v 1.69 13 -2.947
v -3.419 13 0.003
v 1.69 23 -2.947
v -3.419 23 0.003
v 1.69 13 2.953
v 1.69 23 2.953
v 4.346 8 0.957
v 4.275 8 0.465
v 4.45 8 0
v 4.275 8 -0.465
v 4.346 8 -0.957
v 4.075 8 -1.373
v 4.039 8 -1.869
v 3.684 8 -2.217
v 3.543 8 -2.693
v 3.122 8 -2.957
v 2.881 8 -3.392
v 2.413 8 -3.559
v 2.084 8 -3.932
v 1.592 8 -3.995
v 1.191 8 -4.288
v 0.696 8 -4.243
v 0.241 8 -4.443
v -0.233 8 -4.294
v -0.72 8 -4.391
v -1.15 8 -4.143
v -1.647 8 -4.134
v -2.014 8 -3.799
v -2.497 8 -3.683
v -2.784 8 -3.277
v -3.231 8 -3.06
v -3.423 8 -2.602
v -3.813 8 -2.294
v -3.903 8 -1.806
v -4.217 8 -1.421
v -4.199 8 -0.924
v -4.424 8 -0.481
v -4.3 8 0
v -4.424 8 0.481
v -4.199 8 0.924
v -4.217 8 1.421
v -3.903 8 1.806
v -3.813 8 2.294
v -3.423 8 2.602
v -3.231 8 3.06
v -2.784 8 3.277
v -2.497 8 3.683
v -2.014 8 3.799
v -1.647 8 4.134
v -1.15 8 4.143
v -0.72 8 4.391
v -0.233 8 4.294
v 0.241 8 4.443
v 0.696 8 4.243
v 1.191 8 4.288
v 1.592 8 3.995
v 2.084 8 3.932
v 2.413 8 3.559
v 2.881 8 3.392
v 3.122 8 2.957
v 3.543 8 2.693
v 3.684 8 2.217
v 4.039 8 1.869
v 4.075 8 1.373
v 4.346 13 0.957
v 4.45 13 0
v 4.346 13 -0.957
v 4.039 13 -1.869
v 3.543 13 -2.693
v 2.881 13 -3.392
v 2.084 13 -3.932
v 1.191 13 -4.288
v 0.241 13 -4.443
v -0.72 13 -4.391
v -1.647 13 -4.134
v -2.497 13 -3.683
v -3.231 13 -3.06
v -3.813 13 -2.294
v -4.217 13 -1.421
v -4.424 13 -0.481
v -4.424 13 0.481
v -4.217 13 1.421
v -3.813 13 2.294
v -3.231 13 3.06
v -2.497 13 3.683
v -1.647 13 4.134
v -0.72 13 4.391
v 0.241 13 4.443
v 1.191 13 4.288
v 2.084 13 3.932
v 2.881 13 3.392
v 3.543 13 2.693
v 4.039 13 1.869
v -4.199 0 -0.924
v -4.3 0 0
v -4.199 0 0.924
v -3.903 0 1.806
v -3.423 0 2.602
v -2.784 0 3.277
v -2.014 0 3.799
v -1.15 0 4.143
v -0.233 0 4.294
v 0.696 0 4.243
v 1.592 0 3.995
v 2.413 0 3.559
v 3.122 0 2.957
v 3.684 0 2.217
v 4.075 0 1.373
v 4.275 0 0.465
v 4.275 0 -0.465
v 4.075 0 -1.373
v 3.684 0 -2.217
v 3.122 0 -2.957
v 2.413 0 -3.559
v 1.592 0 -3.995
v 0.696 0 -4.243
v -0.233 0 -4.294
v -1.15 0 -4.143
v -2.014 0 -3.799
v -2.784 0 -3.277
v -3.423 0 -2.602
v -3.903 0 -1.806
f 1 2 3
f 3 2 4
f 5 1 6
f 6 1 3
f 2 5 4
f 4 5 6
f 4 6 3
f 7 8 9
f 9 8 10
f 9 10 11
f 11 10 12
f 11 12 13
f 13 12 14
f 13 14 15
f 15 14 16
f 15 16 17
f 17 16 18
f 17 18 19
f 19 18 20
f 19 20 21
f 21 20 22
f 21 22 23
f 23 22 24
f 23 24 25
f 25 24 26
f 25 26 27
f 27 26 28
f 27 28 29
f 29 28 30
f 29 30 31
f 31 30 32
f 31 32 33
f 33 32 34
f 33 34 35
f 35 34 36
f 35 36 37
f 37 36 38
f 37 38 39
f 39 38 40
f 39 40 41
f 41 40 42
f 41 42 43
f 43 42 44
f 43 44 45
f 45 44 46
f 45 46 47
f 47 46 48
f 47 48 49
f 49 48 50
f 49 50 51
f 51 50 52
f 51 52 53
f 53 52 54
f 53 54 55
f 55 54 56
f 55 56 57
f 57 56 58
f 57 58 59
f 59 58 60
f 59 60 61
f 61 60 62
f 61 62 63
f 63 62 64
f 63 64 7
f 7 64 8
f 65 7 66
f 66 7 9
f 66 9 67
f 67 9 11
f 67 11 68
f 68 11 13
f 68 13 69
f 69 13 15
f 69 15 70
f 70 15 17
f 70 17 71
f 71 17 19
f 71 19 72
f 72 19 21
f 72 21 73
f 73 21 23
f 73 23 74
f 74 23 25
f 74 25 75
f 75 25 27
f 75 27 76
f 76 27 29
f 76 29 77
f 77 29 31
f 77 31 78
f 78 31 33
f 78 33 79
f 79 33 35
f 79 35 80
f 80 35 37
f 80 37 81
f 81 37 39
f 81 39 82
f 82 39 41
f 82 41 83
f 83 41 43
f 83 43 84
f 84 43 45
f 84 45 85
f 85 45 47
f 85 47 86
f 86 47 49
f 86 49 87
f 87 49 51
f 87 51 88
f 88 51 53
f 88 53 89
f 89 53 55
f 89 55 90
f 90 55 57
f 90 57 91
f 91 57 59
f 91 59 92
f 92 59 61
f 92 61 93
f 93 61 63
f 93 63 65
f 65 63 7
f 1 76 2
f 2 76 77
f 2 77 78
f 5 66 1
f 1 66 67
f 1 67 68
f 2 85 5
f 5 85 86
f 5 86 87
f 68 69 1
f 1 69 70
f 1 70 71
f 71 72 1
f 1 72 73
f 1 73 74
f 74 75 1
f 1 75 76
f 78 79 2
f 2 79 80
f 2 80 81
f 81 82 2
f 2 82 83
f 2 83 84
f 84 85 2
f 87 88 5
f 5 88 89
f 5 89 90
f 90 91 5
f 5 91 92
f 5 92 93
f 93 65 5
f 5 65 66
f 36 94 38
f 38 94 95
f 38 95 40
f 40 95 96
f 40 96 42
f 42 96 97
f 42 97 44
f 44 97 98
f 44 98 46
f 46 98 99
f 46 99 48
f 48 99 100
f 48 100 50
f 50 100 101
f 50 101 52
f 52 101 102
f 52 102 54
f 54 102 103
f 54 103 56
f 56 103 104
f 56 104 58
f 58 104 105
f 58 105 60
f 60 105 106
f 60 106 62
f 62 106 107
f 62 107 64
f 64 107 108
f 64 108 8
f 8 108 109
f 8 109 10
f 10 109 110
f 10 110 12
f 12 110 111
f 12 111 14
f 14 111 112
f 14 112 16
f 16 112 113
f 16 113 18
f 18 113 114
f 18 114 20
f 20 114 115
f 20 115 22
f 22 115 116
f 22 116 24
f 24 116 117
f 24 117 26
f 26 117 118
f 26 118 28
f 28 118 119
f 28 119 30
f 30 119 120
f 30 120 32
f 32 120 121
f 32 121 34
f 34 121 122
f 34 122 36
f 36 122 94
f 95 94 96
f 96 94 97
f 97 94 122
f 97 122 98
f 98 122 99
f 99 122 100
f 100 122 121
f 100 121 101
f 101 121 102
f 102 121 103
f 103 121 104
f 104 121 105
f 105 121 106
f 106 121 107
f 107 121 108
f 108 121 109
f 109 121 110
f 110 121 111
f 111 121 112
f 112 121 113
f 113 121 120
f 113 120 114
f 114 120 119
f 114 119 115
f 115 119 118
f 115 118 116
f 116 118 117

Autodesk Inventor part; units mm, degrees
ref_plane "YZ Plane" through (0, 0, 0) normal (1, 0, 0) x (0, 1, 0)
ref_plane "XZ Plane" through (0, 0, 0) normal (0, 1, 0) x (-1, 0, 0)
ref_plane "XY Plane" through (0, 0, 0) normal (0, 0, 1) x (1, 0, 0)
sketch "Sketch1" plane through (0, 0, 0) normal (0, 1, 0) x (-1, 0, 0)
  circle A0 centre (0, 0) radius 4.3
  dimension "d0" = 8.6
extrude "Extrusion1" add sketch "Sketch1" along normal blind 8
sketch "Sketch2" plane through (0, 8, 0) normal (0, 1, 0) x (1, 0, 0)
  circle A0 centre (0, 0) radius 4.45
  dimension "d3" = 8.9
extrude "Extrusion2" add sketch "Sketch2" along normal blind 5
sketch "Sketch3" plane through (0, 13, 0) normal (0, 1, 0) x (1, 0, 0)
  line L0 (-3.4193, -0.0029) -> (1.6902, -2.9529)
  line L1 (1.6902, -2.9529) -> (1.6902, 2.9471)
  line L2 (1.6902, 2.9471) -> (-3.4193, -0.0029)
  point P0 (0, 0)
  dimension "d6" = 5.9
  dimension "d7" = 5.9
  dimension "d8" = 5.9
extrude "Extrusion3" add sketch "Sketch3" along normal blind 10
equation "\"d7\" = d6"
equation "\"d8\" = d6"
properties part number "TriangleAdapter"
